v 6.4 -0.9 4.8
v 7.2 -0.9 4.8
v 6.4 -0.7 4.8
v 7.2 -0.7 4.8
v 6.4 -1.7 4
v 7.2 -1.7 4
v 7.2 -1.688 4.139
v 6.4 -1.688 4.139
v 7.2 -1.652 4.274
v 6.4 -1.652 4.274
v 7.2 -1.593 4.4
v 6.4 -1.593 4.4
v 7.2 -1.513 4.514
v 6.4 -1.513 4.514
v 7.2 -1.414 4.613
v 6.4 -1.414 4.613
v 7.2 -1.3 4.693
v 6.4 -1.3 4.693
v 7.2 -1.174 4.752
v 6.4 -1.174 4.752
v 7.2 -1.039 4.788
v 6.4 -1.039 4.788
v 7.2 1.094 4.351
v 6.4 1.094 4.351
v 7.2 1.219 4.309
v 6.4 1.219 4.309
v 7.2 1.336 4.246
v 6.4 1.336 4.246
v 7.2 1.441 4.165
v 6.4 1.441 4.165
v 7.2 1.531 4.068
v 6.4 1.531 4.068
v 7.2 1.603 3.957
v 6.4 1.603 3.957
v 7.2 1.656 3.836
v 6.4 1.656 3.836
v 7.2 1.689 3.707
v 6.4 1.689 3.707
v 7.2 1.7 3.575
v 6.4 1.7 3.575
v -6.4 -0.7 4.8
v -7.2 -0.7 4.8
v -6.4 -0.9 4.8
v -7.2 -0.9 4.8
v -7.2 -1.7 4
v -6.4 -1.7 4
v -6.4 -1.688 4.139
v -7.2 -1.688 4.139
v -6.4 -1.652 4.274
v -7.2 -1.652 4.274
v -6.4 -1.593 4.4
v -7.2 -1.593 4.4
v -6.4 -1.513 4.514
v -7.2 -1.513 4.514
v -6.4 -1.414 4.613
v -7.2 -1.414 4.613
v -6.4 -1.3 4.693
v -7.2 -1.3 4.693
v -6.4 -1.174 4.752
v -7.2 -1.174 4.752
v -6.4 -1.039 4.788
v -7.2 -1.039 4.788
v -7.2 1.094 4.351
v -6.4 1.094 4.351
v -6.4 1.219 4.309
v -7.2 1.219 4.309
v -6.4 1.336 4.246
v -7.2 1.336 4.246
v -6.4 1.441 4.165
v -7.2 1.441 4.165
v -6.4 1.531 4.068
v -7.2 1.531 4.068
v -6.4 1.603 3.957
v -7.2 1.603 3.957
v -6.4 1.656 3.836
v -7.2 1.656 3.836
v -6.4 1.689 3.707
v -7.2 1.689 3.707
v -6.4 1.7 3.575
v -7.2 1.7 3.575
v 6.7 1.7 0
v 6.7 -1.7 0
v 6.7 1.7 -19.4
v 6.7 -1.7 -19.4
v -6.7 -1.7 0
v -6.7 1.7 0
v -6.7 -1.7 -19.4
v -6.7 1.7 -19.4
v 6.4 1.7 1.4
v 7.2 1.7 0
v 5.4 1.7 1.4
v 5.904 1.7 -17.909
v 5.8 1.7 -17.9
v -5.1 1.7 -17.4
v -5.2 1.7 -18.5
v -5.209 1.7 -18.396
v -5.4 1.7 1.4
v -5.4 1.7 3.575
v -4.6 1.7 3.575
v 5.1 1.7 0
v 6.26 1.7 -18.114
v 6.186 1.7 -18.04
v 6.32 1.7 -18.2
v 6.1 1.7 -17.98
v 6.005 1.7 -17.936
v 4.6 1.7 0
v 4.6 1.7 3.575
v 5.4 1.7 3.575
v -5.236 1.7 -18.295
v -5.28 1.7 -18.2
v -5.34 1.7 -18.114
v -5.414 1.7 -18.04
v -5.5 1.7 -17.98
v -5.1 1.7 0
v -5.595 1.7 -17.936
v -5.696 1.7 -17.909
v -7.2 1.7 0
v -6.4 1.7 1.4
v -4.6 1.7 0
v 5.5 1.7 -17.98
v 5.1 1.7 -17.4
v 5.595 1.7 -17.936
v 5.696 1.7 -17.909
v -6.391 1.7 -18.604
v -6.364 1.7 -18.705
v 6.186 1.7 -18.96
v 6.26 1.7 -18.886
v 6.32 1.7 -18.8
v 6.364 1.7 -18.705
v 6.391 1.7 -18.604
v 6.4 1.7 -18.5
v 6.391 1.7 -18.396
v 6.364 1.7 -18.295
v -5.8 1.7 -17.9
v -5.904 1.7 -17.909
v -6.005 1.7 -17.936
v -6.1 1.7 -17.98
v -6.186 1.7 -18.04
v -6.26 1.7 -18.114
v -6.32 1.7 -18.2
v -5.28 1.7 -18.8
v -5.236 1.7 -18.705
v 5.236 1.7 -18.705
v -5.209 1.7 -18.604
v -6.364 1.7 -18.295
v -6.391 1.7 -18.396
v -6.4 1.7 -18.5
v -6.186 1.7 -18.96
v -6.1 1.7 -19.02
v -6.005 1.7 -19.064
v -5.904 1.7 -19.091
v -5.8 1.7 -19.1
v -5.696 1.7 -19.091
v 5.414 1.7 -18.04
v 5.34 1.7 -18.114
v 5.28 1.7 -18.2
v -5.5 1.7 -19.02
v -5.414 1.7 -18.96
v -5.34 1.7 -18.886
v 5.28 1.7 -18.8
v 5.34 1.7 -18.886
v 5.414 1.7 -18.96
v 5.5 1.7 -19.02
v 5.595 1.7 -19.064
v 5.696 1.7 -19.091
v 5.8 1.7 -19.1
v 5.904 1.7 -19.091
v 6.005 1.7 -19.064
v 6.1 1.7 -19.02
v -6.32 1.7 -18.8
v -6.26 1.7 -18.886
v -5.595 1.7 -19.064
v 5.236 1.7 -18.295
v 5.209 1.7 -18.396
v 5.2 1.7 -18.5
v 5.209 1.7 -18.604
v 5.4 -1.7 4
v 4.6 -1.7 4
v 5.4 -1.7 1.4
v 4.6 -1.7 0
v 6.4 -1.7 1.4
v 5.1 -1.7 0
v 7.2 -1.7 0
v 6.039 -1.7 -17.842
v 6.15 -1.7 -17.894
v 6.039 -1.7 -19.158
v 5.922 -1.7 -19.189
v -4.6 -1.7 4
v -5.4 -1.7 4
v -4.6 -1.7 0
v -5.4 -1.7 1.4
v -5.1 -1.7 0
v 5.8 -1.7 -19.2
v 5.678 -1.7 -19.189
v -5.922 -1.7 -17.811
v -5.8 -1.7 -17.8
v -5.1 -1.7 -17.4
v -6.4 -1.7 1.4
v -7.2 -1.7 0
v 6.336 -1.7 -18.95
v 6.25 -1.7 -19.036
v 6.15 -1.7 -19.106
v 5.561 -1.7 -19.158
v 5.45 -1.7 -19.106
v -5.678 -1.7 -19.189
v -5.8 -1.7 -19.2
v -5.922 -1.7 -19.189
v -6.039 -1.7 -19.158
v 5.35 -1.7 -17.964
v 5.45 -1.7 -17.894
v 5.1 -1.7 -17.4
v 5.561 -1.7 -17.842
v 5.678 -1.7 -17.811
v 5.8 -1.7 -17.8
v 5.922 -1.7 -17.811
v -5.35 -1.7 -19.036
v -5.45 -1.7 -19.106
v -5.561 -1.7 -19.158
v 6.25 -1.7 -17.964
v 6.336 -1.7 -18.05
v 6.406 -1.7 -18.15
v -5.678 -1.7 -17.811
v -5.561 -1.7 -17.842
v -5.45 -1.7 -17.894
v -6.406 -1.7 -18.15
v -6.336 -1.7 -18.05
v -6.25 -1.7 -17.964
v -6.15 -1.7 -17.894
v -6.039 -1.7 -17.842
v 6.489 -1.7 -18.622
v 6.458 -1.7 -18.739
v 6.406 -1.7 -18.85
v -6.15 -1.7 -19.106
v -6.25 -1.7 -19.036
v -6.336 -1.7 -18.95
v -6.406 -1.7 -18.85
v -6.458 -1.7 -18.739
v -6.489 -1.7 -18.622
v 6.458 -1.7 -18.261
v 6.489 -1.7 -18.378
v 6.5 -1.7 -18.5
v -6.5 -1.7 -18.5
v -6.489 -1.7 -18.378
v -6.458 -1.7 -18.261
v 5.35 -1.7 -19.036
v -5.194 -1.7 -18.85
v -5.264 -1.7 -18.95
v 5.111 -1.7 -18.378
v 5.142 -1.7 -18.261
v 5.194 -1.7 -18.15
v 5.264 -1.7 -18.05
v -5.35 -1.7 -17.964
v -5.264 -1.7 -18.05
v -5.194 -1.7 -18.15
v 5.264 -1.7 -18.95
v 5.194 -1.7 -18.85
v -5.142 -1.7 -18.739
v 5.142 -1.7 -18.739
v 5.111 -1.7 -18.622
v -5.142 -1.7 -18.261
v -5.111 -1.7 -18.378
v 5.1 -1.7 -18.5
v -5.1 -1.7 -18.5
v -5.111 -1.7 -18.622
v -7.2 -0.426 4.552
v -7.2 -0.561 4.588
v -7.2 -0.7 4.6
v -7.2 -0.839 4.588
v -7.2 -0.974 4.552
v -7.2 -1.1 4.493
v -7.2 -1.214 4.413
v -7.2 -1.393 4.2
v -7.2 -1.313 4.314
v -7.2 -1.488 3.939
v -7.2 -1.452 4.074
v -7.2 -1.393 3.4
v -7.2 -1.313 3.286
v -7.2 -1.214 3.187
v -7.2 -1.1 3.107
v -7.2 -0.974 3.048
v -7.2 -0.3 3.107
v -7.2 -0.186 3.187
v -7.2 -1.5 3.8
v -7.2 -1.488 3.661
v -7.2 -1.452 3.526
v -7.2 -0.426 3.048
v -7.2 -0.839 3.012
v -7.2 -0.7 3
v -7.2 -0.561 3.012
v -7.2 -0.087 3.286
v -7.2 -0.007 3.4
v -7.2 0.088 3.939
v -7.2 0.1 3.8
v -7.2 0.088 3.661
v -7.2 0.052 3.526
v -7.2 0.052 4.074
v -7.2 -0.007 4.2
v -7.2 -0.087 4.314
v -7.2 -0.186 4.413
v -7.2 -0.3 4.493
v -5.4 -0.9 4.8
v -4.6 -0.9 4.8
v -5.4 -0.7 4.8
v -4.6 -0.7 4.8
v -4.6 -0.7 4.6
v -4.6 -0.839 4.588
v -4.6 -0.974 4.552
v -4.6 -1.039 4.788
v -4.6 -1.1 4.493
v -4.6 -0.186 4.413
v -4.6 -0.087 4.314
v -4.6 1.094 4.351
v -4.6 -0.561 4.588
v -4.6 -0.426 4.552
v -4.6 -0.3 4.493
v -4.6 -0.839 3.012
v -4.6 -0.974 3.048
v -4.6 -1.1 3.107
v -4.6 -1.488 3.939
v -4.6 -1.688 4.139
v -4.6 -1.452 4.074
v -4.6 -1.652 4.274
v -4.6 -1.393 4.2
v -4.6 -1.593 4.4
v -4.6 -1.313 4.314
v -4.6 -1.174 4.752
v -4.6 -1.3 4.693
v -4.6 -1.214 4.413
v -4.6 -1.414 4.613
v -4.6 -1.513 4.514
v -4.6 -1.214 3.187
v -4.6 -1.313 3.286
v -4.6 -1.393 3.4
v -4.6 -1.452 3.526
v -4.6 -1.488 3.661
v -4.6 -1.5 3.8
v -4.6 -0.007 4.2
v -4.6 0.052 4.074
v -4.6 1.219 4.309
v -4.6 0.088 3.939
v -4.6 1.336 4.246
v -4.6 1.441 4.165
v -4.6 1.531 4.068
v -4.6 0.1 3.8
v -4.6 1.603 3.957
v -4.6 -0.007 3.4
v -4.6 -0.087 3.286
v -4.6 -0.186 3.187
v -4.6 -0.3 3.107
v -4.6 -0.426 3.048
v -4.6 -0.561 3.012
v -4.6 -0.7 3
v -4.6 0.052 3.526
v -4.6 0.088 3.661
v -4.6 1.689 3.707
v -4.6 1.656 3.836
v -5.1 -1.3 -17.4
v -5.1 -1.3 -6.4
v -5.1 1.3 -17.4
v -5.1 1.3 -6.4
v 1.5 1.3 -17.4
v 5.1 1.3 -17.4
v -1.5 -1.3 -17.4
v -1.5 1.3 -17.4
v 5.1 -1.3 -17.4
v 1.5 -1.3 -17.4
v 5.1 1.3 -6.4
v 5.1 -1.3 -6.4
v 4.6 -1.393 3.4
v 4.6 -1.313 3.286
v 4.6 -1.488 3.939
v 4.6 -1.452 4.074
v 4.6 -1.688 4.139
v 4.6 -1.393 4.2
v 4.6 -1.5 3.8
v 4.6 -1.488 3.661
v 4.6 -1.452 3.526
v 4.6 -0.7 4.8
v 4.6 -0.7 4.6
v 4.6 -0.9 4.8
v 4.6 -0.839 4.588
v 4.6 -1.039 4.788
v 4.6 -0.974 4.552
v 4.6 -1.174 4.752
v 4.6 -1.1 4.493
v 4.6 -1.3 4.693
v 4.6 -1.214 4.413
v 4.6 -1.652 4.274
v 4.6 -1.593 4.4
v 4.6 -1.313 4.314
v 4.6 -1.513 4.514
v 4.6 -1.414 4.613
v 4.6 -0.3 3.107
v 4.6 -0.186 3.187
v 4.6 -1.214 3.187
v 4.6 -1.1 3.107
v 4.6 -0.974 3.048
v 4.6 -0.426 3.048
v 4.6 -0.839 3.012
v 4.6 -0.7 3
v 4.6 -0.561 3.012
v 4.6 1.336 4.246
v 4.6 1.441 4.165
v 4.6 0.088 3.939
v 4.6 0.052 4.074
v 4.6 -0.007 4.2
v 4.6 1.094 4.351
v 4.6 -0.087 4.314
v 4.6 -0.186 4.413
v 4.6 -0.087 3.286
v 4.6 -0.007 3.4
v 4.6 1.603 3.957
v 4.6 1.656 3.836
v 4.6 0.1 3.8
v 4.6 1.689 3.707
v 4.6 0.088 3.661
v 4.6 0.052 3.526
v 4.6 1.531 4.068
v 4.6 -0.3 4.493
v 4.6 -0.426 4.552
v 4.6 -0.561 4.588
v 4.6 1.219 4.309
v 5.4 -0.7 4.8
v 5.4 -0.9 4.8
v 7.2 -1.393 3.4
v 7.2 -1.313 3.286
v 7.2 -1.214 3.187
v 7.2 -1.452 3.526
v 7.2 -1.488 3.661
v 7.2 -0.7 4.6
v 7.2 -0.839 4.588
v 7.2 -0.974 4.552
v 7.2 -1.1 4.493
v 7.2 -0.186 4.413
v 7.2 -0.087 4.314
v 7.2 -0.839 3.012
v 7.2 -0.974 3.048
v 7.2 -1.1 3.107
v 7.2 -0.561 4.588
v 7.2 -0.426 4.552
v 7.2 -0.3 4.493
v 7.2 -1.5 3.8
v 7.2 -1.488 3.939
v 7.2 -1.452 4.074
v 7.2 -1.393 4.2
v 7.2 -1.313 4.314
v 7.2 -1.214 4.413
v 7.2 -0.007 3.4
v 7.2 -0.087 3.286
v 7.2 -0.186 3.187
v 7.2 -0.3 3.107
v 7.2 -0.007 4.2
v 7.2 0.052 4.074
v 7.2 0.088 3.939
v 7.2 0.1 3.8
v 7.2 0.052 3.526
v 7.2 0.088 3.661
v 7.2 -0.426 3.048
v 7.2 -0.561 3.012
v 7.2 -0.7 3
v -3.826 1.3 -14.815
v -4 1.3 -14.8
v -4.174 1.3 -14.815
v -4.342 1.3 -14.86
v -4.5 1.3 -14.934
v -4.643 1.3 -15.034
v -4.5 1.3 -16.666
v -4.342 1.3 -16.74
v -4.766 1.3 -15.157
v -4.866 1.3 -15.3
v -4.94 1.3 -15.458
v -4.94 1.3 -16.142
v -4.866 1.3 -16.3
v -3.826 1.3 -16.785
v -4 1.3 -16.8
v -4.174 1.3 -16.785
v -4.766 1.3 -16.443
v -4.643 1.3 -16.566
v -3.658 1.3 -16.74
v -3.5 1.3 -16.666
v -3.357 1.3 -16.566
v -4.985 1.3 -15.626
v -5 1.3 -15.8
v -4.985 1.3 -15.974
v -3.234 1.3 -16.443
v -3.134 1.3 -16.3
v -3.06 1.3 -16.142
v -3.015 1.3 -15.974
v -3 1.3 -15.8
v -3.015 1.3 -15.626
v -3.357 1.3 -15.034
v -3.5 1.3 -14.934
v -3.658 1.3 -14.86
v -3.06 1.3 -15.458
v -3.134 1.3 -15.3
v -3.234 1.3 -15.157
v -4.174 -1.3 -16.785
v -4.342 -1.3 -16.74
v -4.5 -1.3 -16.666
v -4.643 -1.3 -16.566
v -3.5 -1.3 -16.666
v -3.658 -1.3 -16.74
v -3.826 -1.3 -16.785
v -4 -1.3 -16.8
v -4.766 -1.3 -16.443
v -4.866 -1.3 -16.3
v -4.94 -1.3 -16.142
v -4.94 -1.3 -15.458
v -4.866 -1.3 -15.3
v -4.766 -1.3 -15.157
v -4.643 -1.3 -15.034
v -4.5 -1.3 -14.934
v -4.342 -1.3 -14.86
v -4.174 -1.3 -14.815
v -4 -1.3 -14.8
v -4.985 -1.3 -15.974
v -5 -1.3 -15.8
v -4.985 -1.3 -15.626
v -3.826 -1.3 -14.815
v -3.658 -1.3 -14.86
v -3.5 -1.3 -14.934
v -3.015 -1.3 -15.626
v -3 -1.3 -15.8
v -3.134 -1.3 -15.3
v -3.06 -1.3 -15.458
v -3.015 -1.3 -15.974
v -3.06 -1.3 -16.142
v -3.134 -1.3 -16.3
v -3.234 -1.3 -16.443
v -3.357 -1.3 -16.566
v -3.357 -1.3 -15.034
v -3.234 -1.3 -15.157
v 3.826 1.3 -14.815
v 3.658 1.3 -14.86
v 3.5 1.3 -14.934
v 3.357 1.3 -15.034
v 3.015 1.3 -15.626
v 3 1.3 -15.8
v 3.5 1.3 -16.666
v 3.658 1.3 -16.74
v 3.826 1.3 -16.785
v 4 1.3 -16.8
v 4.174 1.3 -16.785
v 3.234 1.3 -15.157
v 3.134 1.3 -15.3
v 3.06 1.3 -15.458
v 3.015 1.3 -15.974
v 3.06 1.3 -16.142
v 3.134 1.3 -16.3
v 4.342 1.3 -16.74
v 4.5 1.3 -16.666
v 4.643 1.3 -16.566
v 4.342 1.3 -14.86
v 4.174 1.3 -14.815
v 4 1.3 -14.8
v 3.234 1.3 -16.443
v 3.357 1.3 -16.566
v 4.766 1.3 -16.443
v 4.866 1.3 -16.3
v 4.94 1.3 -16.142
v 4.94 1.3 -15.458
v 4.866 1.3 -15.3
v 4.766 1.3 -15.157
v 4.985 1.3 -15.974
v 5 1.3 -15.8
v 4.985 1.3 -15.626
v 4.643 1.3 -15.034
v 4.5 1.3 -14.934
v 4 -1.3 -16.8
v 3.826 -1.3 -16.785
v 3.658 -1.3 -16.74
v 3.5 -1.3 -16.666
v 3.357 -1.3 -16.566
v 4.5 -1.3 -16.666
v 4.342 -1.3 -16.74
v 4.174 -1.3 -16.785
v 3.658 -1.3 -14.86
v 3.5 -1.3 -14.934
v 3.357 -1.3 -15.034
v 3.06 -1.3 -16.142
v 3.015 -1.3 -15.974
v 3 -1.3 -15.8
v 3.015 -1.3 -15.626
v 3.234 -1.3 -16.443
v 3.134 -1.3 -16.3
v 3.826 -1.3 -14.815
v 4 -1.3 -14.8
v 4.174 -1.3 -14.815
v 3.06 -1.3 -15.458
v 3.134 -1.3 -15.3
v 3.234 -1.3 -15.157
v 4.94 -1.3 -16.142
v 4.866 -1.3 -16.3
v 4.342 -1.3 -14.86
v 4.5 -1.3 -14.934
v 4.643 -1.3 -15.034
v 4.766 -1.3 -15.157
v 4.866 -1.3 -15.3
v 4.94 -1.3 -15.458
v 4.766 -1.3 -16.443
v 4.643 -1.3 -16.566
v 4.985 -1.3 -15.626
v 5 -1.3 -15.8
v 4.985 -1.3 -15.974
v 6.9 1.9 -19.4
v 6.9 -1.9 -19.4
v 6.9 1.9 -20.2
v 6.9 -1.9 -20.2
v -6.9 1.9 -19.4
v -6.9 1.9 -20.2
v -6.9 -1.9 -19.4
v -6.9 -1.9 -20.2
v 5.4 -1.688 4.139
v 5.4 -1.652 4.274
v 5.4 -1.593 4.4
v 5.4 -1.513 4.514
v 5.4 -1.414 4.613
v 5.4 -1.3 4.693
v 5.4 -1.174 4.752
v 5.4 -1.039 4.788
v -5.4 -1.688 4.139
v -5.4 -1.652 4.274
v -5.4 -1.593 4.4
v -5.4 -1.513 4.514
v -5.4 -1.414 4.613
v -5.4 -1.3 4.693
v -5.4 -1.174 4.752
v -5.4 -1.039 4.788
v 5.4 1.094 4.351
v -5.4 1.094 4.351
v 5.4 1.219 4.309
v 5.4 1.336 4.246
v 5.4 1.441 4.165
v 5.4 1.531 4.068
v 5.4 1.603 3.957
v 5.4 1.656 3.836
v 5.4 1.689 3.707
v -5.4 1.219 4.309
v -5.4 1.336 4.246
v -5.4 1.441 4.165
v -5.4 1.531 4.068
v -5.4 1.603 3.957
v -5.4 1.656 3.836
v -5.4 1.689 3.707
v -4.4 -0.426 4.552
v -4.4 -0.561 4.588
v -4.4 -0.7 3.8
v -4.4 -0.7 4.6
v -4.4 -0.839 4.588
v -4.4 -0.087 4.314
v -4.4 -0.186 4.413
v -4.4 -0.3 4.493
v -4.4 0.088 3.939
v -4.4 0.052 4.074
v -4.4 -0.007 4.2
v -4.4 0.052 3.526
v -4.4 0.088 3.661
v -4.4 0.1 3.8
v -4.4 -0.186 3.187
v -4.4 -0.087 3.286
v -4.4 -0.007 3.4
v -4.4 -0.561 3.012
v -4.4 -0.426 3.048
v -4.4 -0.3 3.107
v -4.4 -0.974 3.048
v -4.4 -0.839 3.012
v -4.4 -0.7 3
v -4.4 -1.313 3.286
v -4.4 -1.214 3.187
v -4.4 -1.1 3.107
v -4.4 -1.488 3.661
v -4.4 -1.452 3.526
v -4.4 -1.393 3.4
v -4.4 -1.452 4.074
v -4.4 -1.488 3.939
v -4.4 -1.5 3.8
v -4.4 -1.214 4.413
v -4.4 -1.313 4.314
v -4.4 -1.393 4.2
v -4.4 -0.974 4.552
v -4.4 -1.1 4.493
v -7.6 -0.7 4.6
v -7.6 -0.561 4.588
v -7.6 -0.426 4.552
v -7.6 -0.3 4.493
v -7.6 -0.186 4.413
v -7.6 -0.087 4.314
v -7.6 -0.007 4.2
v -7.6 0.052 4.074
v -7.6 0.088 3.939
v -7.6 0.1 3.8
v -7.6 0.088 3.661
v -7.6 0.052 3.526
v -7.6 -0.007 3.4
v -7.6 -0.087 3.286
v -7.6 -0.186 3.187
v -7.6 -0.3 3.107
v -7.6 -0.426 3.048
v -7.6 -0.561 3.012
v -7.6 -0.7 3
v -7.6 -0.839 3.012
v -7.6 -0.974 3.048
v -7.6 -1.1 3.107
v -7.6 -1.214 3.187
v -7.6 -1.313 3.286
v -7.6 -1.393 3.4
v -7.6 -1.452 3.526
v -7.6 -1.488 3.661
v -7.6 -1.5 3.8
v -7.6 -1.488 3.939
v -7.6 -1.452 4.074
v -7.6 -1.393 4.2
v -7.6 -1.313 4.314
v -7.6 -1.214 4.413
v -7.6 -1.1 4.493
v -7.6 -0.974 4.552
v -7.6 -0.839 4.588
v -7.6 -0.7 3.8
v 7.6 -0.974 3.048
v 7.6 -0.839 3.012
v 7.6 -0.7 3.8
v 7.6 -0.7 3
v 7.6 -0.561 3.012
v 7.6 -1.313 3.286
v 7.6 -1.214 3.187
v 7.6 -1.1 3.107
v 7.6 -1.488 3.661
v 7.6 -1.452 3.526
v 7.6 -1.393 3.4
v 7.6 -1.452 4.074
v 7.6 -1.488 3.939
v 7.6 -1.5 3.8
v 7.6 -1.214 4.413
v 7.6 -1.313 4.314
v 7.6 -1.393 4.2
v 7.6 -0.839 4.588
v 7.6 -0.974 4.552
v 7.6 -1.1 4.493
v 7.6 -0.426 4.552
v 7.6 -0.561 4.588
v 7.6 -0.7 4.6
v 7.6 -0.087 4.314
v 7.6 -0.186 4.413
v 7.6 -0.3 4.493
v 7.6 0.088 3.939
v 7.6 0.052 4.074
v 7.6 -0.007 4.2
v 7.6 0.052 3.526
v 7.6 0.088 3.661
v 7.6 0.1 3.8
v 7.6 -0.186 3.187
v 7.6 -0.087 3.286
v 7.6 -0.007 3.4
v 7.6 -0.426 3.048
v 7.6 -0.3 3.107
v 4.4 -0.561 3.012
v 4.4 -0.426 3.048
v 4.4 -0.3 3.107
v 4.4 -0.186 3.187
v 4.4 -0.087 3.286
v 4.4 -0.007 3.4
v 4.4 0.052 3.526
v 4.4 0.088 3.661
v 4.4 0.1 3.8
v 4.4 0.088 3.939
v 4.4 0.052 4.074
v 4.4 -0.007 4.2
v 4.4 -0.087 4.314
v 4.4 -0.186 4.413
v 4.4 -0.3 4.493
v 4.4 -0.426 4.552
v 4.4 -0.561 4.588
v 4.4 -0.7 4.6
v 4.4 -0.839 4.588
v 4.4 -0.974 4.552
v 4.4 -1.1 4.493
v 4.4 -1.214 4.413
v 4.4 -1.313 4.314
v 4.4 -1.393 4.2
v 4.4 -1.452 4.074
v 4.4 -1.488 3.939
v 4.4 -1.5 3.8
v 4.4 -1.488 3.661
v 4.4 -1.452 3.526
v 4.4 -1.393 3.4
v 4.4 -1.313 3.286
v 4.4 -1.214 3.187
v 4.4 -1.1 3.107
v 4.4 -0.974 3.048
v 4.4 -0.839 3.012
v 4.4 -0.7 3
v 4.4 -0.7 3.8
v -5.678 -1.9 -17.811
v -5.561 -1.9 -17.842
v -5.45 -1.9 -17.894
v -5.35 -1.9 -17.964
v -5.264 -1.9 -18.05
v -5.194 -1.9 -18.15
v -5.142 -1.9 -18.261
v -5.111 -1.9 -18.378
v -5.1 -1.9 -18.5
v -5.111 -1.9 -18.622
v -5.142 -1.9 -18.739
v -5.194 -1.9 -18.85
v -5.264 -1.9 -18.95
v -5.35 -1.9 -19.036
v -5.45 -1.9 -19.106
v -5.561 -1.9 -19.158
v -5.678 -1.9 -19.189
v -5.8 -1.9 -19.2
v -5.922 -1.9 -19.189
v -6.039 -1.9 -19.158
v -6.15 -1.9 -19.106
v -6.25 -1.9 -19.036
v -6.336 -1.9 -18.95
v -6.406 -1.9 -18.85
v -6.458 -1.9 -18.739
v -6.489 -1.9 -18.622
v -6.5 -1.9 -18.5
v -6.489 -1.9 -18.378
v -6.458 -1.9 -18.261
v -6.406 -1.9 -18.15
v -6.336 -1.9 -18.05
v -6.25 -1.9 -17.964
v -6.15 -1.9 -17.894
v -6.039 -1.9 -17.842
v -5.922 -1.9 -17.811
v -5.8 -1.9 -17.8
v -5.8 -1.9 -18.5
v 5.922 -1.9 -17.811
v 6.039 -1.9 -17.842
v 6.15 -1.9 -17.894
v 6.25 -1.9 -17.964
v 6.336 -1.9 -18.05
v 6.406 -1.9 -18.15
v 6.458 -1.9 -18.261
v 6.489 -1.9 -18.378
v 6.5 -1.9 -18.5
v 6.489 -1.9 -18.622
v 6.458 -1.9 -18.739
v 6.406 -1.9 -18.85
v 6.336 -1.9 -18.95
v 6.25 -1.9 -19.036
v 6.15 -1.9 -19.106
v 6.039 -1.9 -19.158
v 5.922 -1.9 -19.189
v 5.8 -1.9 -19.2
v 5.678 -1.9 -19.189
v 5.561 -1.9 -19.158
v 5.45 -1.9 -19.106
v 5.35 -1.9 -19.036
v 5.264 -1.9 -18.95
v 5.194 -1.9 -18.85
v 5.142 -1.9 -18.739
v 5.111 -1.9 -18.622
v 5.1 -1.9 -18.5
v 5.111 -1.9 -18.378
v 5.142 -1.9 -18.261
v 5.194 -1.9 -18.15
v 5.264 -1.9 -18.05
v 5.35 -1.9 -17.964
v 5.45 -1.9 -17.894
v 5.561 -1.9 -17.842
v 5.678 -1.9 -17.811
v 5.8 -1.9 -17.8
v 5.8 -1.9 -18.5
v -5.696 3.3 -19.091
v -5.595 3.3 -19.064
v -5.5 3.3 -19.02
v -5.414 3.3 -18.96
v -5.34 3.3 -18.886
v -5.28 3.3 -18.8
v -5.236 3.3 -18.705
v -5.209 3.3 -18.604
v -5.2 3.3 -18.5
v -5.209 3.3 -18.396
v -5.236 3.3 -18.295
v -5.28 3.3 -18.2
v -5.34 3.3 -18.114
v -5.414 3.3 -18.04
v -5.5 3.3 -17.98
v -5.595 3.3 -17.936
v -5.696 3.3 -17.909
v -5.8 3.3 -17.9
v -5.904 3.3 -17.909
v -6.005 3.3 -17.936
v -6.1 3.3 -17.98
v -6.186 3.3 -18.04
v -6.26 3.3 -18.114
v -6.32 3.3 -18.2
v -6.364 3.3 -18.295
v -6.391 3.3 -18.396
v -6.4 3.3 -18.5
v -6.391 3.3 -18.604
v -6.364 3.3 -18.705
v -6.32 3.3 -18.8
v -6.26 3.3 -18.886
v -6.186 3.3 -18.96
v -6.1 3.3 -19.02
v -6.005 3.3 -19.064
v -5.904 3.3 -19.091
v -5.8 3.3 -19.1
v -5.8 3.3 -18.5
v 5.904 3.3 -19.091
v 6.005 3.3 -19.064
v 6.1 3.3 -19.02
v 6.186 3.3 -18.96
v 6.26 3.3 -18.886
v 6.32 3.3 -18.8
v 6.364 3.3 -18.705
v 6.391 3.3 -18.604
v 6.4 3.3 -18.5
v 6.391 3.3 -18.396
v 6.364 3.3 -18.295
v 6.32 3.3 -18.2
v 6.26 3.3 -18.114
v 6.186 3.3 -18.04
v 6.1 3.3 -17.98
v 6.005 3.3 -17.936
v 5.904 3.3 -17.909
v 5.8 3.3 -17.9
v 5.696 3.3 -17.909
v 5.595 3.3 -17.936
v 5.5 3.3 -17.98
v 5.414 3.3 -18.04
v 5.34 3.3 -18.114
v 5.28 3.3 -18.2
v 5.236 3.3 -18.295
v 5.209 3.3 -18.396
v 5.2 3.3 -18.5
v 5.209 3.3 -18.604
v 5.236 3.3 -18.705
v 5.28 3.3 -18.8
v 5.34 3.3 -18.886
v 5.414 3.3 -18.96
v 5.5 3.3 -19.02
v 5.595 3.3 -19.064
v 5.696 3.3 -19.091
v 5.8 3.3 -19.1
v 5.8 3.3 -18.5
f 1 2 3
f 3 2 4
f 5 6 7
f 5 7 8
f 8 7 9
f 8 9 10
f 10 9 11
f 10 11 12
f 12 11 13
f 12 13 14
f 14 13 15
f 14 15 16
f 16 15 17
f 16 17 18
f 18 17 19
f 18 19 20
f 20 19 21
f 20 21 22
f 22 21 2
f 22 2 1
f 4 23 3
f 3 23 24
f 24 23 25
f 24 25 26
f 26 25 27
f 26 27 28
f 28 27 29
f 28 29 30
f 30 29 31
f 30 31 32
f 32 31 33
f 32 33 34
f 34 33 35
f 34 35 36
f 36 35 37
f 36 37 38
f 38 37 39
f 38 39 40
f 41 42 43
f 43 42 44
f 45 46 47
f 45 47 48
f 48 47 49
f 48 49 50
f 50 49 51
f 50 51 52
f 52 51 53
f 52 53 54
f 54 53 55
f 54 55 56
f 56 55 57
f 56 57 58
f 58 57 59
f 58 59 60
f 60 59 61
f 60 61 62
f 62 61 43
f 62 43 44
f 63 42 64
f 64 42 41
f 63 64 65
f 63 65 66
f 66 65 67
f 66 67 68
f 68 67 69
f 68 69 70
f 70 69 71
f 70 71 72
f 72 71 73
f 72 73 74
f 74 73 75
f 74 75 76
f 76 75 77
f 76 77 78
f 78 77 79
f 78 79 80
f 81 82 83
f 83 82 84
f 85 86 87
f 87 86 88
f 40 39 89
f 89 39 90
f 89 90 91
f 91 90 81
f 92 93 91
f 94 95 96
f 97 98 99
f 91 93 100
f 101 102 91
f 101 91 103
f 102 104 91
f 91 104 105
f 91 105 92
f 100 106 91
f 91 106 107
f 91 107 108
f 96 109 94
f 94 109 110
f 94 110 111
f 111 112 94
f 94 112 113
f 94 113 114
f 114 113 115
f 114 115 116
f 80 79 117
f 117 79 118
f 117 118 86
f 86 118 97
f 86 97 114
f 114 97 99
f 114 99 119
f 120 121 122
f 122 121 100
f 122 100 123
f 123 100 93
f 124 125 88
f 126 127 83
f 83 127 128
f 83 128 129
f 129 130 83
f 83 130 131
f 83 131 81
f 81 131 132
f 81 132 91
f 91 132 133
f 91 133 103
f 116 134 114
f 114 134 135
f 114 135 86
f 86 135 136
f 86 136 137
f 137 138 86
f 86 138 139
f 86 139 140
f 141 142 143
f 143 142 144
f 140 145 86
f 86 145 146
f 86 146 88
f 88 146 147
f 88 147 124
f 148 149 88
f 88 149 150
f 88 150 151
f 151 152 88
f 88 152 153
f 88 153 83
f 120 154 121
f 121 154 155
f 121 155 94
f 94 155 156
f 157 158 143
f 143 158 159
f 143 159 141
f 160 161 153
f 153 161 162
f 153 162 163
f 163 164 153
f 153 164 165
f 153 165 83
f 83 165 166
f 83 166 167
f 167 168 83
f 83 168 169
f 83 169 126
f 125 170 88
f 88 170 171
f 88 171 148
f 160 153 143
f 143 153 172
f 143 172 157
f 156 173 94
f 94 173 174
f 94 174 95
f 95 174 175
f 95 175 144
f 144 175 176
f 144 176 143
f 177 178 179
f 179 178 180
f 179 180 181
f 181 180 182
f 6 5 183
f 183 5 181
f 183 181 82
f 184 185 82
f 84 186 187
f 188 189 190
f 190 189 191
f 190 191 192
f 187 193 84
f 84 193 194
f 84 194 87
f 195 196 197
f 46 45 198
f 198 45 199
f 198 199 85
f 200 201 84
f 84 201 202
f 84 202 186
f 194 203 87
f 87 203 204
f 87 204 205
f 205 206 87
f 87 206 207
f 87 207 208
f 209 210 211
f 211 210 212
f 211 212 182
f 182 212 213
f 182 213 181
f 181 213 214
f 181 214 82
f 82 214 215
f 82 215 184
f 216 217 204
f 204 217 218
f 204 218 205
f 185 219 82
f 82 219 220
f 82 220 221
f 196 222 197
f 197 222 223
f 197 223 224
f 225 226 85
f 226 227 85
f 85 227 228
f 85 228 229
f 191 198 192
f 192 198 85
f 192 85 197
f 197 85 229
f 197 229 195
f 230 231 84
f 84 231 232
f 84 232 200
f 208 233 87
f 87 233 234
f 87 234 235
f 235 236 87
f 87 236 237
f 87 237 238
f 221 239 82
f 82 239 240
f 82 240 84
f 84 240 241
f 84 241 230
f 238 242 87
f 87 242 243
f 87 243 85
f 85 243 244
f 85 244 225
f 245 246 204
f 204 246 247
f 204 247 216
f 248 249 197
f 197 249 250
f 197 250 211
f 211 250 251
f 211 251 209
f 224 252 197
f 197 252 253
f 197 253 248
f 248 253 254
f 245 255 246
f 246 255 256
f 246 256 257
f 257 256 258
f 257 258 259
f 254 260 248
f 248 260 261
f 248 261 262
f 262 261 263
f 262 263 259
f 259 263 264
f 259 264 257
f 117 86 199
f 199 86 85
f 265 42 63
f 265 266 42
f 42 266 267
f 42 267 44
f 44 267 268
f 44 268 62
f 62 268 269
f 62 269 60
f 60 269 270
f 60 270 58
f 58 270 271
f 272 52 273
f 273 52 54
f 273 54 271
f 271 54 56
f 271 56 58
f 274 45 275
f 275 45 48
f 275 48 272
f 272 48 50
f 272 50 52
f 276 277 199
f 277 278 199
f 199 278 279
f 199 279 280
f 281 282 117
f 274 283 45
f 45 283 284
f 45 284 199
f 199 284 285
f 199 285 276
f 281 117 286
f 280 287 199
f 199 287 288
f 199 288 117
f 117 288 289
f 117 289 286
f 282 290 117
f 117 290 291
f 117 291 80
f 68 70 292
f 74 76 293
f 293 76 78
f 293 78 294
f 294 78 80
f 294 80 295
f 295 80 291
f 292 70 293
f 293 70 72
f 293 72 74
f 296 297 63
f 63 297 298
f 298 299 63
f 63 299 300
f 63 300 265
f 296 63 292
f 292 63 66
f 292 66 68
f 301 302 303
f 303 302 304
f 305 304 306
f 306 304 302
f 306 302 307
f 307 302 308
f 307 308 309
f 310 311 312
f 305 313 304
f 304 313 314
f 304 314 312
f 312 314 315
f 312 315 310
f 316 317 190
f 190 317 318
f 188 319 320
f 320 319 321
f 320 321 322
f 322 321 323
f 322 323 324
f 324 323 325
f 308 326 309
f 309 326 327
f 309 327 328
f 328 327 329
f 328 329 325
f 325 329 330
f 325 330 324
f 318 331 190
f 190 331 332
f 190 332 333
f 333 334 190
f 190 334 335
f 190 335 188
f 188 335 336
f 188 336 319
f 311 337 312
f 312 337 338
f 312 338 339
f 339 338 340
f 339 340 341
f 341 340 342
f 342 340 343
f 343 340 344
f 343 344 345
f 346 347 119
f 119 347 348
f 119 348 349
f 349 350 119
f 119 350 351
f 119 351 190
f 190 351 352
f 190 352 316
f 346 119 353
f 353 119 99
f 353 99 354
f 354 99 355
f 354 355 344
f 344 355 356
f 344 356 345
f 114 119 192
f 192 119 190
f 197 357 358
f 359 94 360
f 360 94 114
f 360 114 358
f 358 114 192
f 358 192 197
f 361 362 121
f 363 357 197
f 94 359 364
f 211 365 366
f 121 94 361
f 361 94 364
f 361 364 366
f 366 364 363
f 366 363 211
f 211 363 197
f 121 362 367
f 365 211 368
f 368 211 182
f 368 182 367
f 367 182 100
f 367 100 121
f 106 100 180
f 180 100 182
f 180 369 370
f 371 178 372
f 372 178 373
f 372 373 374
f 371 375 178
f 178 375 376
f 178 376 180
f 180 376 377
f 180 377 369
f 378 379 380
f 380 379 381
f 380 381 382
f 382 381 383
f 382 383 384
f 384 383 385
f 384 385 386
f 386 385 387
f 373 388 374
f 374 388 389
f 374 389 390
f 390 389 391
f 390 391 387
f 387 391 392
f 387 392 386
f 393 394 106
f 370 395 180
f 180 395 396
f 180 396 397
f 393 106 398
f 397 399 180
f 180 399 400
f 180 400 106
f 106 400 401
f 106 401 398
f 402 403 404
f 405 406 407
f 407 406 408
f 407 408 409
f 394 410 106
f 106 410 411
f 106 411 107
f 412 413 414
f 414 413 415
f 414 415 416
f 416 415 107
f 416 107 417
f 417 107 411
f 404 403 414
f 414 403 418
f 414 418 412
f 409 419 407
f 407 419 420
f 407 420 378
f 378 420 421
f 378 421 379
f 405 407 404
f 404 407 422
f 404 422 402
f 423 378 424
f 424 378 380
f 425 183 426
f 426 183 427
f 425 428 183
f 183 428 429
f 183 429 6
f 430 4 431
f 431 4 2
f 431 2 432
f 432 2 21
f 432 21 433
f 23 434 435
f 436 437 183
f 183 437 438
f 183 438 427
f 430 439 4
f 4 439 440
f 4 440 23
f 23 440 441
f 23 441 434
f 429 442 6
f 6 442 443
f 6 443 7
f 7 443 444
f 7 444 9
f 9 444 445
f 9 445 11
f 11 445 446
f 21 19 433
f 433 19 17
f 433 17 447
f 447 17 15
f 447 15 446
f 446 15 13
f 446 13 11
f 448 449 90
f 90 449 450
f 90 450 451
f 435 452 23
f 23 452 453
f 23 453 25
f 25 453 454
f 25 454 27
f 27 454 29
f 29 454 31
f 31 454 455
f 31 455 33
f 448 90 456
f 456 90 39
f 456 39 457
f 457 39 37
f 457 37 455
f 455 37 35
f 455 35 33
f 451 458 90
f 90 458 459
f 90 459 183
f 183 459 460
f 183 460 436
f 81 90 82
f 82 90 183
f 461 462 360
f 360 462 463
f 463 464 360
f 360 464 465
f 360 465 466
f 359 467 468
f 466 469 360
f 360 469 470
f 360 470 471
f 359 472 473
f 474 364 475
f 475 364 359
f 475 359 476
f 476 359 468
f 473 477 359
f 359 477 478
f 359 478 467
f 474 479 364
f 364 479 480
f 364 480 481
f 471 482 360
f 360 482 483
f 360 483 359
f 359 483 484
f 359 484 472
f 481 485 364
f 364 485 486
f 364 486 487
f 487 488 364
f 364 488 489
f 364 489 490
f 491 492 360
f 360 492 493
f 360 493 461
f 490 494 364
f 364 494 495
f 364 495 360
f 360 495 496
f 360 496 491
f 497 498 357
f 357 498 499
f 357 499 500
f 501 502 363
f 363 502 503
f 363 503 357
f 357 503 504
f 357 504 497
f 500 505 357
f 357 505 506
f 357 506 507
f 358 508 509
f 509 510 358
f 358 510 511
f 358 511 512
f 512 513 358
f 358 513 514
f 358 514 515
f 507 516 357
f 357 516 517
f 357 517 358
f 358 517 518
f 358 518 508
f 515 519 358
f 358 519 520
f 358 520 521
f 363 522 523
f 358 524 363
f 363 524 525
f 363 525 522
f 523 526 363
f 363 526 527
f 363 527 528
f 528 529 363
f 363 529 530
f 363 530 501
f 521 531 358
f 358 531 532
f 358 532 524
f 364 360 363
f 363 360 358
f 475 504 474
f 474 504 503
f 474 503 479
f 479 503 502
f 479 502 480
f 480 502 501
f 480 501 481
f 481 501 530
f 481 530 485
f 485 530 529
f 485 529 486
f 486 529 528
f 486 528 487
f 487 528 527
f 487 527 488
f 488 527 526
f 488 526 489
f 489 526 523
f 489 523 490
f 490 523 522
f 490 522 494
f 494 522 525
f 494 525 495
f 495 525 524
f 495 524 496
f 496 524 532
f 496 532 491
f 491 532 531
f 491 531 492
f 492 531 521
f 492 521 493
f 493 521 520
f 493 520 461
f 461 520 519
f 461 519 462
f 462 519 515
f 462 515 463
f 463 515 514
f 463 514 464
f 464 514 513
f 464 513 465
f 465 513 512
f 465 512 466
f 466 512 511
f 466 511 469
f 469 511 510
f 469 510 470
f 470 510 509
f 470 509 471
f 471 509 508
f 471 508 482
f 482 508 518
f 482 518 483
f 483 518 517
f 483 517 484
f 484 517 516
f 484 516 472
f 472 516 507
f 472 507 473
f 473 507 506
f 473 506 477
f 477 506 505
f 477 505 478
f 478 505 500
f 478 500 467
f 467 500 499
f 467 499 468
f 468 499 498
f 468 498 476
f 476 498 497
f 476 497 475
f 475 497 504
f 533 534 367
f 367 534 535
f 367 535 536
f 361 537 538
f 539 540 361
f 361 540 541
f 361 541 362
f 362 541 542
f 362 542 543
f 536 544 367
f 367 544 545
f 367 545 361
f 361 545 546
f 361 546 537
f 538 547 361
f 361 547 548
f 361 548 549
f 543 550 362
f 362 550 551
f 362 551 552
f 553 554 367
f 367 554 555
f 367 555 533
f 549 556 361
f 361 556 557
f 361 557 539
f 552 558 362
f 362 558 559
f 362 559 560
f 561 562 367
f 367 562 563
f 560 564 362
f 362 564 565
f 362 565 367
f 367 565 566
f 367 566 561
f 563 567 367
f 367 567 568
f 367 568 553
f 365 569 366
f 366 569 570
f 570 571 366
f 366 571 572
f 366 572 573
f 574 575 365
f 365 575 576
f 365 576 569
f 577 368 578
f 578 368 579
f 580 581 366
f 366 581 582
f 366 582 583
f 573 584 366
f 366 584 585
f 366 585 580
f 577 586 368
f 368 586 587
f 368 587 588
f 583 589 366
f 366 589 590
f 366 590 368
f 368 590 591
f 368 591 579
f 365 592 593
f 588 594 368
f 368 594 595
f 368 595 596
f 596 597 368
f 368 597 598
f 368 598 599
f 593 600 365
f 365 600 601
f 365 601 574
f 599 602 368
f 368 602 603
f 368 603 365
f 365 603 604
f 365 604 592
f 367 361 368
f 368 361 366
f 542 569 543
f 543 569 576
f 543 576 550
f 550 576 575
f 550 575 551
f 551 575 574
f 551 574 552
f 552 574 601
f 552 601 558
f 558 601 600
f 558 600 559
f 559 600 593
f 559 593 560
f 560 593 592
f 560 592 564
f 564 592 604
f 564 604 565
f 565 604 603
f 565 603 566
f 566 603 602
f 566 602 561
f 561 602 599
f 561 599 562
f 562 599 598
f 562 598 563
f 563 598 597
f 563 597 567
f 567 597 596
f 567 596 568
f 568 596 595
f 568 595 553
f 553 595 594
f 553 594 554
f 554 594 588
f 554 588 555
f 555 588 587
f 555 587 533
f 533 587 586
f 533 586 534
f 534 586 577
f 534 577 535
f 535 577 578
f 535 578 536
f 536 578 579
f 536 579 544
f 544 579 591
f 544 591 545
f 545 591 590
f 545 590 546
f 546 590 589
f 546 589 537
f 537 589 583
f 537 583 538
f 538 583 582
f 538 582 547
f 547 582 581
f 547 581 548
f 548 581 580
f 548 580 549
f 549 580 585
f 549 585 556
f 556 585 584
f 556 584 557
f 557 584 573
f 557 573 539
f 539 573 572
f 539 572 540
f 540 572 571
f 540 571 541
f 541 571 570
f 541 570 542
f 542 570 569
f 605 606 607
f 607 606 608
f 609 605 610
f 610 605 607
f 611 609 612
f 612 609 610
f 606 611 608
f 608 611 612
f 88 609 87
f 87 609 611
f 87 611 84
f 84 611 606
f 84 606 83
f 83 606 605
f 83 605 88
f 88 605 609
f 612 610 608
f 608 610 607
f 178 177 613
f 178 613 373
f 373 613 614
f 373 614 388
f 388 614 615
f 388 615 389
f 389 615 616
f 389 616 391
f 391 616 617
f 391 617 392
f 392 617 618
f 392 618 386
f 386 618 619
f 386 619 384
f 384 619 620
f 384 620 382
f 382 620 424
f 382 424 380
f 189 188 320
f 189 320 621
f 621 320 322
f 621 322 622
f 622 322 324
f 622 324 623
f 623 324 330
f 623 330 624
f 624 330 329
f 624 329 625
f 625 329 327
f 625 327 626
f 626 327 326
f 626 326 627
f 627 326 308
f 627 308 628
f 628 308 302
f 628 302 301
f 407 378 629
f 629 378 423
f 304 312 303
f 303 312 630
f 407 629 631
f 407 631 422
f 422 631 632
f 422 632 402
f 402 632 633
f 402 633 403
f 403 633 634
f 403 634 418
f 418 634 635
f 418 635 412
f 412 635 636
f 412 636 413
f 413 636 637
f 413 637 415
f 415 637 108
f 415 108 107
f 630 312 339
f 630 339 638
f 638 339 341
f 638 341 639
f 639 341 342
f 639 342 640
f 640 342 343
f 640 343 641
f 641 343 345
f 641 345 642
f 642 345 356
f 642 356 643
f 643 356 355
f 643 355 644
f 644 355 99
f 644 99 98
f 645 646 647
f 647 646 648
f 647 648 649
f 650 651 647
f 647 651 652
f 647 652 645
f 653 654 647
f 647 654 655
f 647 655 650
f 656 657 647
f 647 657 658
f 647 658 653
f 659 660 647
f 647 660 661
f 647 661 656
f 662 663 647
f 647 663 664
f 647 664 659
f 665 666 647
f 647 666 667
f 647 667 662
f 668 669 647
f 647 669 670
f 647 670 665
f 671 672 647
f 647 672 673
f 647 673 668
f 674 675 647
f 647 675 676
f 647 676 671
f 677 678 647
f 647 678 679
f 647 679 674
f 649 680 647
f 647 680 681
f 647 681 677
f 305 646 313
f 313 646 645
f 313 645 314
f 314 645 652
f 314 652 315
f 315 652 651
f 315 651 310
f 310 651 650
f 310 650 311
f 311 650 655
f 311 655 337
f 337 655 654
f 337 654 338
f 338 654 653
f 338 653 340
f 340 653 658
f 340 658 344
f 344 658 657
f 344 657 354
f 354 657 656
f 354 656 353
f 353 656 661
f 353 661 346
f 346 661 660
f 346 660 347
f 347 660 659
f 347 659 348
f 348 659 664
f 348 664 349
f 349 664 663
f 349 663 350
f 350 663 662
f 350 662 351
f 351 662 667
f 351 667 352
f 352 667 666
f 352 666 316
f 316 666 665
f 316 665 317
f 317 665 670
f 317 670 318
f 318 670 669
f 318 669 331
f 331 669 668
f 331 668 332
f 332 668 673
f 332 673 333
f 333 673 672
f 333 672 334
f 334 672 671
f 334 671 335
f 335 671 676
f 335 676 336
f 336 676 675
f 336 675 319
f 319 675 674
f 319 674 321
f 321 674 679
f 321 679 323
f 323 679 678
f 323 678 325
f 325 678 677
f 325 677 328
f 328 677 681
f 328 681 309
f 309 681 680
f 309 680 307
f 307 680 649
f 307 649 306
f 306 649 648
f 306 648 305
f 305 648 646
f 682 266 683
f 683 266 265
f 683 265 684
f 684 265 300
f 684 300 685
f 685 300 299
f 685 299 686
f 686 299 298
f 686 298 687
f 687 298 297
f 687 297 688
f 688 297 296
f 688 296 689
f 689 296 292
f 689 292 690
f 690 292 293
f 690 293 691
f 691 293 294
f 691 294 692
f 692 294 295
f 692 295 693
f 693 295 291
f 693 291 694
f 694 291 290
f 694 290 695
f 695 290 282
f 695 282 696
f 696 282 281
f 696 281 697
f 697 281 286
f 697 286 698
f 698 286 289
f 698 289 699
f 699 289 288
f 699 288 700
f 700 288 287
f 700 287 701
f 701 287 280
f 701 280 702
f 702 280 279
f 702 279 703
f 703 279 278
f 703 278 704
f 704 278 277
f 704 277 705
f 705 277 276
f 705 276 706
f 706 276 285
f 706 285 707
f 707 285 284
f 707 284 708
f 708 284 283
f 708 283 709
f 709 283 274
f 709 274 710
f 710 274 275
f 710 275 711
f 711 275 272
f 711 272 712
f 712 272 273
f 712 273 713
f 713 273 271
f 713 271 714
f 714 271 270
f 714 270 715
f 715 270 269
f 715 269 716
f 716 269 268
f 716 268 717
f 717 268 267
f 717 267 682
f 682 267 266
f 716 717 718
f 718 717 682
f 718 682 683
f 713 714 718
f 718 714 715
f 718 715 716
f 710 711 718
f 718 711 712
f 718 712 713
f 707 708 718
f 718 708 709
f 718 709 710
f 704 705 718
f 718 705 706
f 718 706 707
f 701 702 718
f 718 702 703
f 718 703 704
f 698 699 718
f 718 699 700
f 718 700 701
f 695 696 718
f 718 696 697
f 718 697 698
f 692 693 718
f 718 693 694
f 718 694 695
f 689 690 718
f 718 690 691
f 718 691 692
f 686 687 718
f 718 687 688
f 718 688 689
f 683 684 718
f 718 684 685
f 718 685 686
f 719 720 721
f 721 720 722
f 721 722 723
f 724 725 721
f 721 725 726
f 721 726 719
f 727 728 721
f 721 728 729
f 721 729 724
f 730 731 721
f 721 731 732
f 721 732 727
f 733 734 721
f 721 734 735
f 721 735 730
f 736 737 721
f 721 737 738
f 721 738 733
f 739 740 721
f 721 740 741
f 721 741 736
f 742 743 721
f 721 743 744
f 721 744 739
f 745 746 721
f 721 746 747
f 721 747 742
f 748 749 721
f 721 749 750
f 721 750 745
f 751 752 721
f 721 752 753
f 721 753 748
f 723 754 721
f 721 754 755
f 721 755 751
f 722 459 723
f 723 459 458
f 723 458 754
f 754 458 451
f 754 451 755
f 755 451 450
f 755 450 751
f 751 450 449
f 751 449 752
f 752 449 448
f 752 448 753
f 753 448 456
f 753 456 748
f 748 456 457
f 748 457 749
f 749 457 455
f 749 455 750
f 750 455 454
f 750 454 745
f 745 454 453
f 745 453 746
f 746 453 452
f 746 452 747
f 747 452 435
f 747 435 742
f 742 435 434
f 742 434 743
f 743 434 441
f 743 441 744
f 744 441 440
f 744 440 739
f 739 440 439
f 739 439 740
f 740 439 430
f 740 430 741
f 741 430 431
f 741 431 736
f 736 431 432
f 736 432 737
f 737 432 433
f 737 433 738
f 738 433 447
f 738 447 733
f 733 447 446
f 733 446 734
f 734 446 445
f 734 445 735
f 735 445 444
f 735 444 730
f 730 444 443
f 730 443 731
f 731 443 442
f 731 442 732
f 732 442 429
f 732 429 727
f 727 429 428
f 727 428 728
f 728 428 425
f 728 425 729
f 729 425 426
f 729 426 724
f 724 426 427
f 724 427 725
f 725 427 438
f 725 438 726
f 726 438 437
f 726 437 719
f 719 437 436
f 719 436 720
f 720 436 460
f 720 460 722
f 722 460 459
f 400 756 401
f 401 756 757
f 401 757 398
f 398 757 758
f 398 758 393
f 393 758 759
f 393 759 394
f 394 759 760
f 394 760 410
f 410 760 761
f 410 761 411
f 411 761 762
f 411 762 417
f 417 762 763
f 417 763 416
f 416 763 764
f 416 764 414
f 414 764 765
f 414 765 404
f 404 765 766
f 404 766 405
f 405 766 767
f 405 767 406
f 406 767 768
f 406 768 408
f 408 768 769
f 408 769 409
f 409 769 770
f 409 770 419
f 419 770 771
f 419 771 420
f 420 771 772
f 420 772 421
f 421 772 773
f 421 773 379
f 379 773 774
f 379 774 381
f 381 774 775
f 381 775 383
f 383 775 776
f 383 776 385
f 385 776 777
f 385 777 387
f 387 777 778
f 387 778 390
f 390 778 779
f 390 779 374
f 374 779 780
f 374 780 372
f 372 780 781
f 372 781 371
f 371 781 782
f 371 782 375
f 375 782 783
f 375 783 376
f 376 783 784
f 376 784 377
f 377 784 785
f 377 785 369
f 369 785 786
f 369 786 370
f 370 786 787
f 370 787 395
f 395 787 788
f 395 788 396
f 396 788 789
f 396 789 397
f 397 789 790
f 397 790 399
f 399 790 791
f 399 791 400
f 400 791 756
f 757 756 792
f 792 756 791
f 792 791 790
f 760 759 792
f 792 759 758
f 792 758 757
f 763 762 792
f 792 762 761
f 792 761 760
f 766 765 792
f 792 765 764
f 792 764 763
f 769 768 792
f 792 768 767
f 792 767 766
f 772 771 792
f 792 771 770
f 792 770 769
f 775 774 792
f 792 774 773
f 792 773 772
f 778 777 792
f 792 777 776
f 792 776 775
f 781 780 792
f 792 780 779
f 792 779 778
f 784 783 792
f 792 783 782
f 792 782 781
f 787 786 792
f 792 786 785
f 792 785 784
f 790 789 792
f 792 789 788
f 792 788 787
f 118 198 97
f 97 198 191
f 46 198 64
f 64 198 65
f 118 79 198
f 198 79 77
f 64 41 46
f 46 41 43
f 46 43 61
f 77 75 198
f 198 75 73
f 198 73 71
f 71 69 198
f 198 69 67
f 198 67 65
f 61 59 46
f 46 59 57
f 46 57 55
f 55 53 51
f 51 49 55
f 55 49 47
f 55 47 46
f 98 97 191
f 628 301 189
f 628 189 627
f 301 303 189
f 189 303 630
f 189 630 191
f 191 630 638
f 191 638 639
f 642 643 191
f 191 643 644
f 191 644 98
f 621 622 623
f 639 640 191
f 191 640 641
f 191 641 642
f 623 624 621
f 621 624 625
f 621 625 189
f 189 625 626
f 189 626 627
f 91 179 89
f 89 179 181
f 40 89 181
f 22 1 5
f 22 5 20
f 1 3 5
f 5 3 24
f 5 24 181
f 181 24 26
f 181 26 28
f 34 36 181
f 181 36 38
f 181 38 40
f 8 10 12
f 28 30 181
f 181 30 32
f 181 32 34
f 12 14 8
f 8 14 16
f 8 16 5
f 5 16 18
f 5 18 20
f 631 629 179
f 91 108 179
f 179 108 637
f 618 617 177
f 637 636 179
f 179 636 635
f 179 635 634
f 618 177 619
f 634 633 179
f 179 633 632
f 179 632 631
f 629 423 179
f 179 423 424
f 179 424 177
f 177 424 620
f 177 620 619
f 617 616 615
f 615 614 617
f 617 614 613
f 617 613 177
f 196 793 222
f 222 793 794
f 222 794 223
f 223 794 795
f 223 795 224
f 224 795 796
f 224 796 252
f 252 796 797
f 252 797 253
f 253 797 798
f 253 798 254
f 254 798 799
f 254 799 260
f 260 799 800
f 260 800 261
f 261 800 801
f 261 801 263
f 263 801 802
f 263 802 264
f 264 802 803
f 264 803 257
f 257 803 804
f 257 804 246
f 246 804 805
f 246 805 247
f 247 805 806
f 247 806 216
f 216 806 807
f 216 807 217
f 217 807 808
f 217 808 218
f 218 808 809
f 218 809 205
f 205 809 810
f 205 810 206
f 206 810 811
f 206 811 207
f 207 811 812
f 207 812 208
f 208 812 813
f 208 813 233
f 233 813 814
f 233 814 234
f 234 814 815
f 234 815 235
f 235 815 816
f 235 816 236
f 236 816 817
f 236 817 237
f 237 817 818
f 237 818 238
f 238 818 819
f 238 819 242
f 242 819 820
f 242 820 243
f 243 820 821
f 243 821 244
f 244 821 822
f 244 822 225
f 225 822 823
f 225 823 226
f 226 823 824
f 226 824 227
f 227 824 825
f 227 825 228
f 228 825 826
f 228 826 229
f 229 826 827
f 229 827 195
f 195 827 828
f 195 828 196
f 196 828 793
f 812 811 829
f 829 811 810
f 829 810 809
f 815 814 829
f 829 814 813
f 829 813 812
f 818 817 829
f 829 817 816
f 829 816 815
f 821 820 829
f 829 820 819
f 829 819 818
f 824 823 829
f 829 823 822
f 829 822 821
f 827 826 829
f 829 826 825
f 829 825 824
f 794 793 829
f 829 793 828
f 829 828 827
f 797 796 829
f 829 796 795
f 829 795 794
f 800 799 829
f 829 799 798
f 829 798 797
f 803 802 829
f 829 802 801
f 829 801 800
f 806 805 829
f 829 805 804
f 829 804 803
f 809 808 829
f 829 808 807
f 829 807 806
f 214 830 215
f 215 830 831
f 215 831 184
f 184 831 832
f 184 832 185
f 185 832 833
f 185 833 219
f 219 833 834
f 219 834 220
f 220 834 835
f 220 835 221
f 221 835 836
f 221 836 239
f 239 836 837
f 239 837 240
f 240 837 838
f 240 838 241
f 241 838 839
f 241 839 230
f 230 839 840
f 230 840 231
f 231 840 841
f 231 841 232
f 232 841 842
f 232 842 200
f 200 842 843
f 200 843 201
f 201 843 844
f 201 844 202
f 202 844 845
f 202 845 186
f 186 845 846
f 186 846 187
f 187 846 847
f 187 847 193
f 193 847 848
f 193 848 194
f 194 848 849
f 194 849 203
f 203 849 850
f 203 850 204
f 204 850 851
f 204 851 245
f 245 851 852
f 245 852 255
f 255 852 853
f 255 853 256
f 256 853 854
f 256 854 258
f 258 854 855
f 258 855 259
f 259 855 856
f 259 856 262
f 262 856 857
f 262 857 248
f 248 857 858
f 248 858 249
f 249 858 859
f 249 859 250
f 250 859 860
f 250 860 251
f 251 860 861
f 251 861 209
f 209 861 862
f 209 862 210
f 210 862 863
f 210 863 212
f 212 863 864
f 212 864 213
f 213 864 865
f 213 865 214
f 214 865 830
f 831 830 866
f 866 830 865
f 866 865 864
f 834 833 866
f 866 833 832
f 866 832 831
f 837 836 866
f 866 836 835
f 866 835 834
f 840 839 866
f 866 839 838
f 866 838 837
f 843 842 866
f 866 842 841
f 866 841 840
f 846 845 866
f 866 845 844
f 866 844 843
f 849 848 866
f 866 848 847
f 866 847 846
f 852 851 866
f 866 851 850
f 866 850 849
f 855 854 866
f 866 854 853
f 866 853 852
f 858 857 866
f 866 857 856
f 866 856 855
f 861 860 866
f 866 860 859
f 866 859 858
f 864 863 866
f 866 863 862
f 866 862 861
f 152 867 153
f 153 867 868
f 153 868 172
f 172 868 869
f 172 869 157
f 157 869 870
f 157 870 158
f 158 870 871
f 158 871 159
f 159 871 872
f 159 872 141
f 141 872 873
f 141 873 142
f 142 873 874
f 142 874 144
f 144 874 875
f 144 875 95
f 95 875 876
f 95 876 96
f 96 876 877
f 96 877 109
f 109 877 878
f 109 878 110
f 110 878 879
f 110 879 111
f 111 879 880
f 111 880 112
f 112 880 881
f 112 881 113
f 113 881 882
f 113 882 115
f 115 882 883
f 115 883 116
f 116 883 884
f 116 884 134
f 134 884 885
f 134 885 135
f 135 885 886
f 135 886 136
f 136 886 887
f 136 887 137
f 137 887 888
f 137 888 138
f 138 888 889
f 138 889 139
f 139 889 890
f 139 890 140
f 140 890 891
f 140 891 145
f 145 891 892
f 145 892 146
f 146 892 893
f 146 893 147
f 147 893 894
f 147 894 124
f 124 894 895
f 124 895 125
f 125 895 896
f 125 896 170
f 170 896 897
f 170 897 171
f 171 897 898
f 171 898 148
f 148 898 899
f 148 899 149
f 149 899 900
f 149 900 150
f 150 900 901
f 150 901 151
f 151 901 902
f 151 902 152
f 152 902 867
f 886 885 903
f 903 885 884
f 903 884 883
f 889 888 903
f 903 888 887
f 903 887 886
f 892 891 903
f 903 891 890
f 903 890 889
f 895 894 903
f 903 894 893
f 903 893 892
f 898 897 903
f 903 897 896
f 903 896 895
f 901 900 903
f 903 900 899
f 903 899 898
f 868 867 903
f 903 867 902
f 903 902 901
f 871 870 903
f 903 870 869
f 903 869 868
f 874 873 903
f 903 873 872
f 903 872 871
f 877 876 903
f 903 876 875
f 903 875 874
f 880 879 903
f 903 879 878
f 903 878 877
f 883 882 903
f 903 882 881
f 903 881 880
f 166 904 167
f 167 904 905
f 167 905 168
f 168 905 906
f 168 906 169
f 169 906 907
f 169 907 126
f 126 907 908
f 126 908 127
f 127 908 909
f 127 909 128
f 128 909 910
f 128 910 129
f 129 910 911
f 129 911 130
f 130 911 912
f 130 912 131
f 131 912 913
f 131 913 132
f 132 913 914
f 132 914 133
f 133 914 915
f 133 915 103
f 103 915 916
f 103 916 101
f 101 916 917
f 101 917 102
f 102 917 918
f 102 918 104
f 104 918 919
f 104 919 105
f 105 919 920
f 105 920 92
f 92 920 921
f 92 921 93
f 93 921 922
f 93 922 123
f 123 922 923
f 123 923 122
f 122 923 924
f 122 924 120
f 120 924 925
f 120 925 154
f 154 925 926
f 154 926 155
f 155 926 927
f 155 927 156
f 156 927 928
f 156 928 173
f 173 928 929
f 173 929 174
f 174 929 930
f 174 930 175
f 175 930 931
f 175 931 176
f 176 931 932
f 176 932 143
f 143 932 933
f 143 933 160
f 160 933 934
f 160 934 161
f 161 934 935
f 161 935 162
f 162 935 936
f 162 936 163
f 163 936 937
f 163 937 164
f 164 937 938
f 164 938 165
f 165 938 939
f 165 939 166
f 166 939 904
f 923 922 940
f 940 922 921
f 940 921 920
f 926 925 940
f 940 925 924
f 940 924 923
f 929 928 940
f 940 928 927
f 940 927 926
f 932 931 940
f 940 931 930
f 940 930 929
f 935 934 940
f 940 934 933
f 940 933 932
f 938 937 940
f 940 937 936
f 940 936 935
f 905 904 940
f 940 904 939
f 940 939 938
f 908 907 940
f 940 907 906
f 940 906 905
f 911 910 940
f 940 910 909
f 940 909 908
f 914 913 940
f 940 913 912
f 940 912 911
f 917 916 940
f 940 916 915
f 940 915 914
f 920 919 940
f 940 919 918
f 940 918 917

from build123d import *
from OCP.BRepFilletAPI import BRepFilletAPI_MakeChamfer

# Parameters (mm, degrees)
BOSS_EXTRUDE1_DEPTH      = 0.85
SKETCH3_R                = 0.5
BOSS_EXTRUDE2_DEPTH      = 0.65
SKETCH4_W                = 6.9
SKETCH4_H                = 1.9
BOSS_EXTRUDE3_DEPTH      = 0.4
FILLET1_R                = 0.4
CHAMFER1_SIZE            = 1.2
CHAMFER1_SIZE2           = 0.3
FILLET2_R                = 0.4
BOSS_EXTRUDE4_DEPTH      = 0.2
BOSS_EXTRUDE4_DEPTH_BACK = 1.4
SKETCH7_R                = 0.4
BOSS_EXTRUDE5_DEPTH      = 0.2
BOSS_EXTRUDE5_DEPTH_BACK = 1.4
SKETCH8_R                = 0.4
SKETCH6_W                = 0.5
SKETCH6_H                = 1.7
CUT_EXTRUDE1_DEPTH       = 11.940292501
SKETCH9_R                = 0.35
BOSS_EXTRUDE6_DEPTH      = 0.1
SKETCH10_R               = 0.3
BOSS_EXTRUDE7_DEPTH      = 0.8
SCALE1_SCALE             = 2


with BuildPart() as part:
    # Sketch1 → Boss-Extrude1 (new, symmetric)
    with BuildSketch(Plane(origin=(0, 0, 0), x_dir=(1, 0, 0), z_dir=(0, 1, 0))):
        Polygon((-3.35, 0), (-3.35, 10.1), (3.35, 10.1), (3.35, 0), (3.6, 0), (3.6, -2.4), (2.3, -2.4), (2.3, 0), (2.55, 0), (2.55, 8.7), (-2.55, 8.7), (-2.55, 0), (-2.3, 0), (-2.3, -2.4), (-3.6, -2.4), (-3.6, 0), align=None)
    extrude(amount=BOSS_EXTRUDE1_DEPTH, both=True)

    # Sketch3 → Boss-Extrude2 (add, symmetric)
    # profile 1 of 2: a face of its own
    with BuildSketch(Plane(origin=(0, 0, 0), x_dir=(1, 0, 0), z_dir=(0, 1, 0))):
        Polygon((-0.75, 8.7), (-2.55, 8.7), (-2.55, 3.2), align=None)
        with Locations((-2, 7.9)):
            Circle(SKETCH3_R, mode=Mode.SUBTRACT)
    # profile 2 of 2: a face of its own
    with BuildSketch(Plane(origin=(0, 0, 0), x_dir=(1, 0, 0), z_dir=(0, 1, 0))):
        Polygon((2.55, 3.2), (0.75, 8.7), (2.55, 8.7), align=None)
        with Locations((2, 7.9)):
            Circle(SKETCH3_R, mode=Mode.SUBTRACT)
    extrude(amount=BOSS_EXTRUDE2_DEPTH, both=True)

    # Sketch4 → Boss-Extrude3 (add)
    with BuildSketch(Plane(origin=(0, 0, -10.1), x_dir=(-1, 0, 0), z_dir=(0, 0, -1))):
        Rectangle(SKETCH4_W, SKETCH4_H)
    extrude(amount=-BOSS_EXTRUDE3_DEPTH)

    # Fillet1
    fillet1_edges = [part.edges().sort_by_distance(p)[0] for p in [
        (2.95, -0.85, 2.4),
        (-2.95, -0.85, 2.4),
    ]]
    fillet(fillet1_edges, radius=FILLET1_R)

    # Chamfer1: one chamfer whose edges measure the first distance from different faces: ONE call of the kernel's chamfer builder (chamfer() names one face for all edges)
    chamfer1_edges_1 = [part.edges().sort_by_distance(p)[0] for p in [
        (2.95, 0.85, 2.4),
    ]]
    chamfer1_side_1 = [part.faces().sort_by_distance(p)[0] for p in [
        (2.95, 0.2, 2.4),
    ]]
    chamfer1_edges_2 = [part.edges().sort_by_distance(p)[0] for p in [
        (-2.95, 0.85, 2.4),
    ]]
    chamfer1_side_2 = [part.faces().sort_by_distance(p)[0] for p in [
        (-2.95, 0.2, 2.4),
    ]]
    chamfer1 = BRepFilletAPI_MakeChamfer(part.part.solid().wrapped)
    for e in chamfer1_edges_1:
        chamfer1.Add(CHAMFER1_SIZE, CHAMFER1_SIZE2, e.wrapped, chamfer1_side_1[0].wrapped)  # the first distance lies on this face
    for e in chamfer1_edges_2:
        chamfer1.Add(CHAMFER1_SIZE, CHAMFER1_SIZE2, e.wrapped, chamfer1_side_2[0].wrapped)  # the first distance lies on this face
    add(Compound.cast(chamfer1.Shape()), mode=Mode.REPLACE)

    # Fillet2
    fillet2_edges = [part.edges().sort_by_distance(p)[0] for p in [
        (2.95, 0.85, 2.1),
        (-2.95, 0.85, 2.1),
    ]]
    fillet(fillet2_edges, radius=FILLET2_R)

    # Sketch7 → Boss-Extrude4 (add, two sides: drawn at the far end of the back side and taken through both)
    with BuildSketch(Plane.ZY.offset(3.6).offset(-BOSS_EXTRUDE4_DEPTH_BACK)):
        with Locations((1.9, -0.35)):
            Circle(SKETCH7_R)
    extrude(amount=BOSS_EXTRUDE4_DEPTH + BOSS_EXTRUDE4_DEPTH_BACK)

    # Sketch8 → Boss-Extrude5 (add, two sides: drawn at the far end of the back side and taken through both)
    with BuildSketch(Plane(origin=(3.6, 0, 0), x_dir=(0, 0, -1), z_dir=(1, 0, 0)).offset(-BOSS_EXTRUDE5_DEPTH_BACK)):
        with Locations((-1.9, -0.35)):
            Circle(SKETCH8_R)
    extrude(amount=BOSS_EXTRUDE5_DEPTH + BOSS_EXTRUDE5_DEPTH_BACK)

    # Sketch6 → Cut-Extrude1 (cut, through all)
    with BuildSketch(Plane(origin=(0, 0.85, 0), x_dir=(1, 0, 0), z_dir=(0, 1, 0))):
        with Locations((-2.95, -1.55)):
            Rectangle(SKETCH6_W, SKETCH6_H)
        with Locations((2.95, -1.55)):
            Rectangle(SKETCH6_W, SKETCH6_H)
    extrude(amount=-CUT_EXTRUDE1_DEPTH, mode=Mode.SUBTRACT)

    # Sketch9 → Boss-Extrude6 (add)
    with BuildSketch(Plane.XZ.offset(0.85)):
        with Locations((-2.9, -9.25)):
            Circle(SKETCH9_R)
        with Locations((2.9, -9.25)):
            Circle(SKETCH9_R)
    extrude(amount=BOSS_EXTRUDE6_DEPTH)

    # Sketch10 → Boss-Extrude7 (add)
    with BuildSketch(Plane(origin=(0, 0.85, 0), x_dir=(1, 0, 0), z_dir=(0, 1, 0))):
        with Locations((-2.9, 9.25)):
            Circle(SKETCH10_R)
        with Locations((2.9, 9.25)):
            Circle(SKETCH10_R)
    extrude(amount=BOSS_EXTRUDE7_DEPTH)


with BuildPart() as part_1:
    # Scale1: scaled about (0, 0, 0)
    add(part.part.scale(SCALE1_SCALE))


solid = part_1.part
